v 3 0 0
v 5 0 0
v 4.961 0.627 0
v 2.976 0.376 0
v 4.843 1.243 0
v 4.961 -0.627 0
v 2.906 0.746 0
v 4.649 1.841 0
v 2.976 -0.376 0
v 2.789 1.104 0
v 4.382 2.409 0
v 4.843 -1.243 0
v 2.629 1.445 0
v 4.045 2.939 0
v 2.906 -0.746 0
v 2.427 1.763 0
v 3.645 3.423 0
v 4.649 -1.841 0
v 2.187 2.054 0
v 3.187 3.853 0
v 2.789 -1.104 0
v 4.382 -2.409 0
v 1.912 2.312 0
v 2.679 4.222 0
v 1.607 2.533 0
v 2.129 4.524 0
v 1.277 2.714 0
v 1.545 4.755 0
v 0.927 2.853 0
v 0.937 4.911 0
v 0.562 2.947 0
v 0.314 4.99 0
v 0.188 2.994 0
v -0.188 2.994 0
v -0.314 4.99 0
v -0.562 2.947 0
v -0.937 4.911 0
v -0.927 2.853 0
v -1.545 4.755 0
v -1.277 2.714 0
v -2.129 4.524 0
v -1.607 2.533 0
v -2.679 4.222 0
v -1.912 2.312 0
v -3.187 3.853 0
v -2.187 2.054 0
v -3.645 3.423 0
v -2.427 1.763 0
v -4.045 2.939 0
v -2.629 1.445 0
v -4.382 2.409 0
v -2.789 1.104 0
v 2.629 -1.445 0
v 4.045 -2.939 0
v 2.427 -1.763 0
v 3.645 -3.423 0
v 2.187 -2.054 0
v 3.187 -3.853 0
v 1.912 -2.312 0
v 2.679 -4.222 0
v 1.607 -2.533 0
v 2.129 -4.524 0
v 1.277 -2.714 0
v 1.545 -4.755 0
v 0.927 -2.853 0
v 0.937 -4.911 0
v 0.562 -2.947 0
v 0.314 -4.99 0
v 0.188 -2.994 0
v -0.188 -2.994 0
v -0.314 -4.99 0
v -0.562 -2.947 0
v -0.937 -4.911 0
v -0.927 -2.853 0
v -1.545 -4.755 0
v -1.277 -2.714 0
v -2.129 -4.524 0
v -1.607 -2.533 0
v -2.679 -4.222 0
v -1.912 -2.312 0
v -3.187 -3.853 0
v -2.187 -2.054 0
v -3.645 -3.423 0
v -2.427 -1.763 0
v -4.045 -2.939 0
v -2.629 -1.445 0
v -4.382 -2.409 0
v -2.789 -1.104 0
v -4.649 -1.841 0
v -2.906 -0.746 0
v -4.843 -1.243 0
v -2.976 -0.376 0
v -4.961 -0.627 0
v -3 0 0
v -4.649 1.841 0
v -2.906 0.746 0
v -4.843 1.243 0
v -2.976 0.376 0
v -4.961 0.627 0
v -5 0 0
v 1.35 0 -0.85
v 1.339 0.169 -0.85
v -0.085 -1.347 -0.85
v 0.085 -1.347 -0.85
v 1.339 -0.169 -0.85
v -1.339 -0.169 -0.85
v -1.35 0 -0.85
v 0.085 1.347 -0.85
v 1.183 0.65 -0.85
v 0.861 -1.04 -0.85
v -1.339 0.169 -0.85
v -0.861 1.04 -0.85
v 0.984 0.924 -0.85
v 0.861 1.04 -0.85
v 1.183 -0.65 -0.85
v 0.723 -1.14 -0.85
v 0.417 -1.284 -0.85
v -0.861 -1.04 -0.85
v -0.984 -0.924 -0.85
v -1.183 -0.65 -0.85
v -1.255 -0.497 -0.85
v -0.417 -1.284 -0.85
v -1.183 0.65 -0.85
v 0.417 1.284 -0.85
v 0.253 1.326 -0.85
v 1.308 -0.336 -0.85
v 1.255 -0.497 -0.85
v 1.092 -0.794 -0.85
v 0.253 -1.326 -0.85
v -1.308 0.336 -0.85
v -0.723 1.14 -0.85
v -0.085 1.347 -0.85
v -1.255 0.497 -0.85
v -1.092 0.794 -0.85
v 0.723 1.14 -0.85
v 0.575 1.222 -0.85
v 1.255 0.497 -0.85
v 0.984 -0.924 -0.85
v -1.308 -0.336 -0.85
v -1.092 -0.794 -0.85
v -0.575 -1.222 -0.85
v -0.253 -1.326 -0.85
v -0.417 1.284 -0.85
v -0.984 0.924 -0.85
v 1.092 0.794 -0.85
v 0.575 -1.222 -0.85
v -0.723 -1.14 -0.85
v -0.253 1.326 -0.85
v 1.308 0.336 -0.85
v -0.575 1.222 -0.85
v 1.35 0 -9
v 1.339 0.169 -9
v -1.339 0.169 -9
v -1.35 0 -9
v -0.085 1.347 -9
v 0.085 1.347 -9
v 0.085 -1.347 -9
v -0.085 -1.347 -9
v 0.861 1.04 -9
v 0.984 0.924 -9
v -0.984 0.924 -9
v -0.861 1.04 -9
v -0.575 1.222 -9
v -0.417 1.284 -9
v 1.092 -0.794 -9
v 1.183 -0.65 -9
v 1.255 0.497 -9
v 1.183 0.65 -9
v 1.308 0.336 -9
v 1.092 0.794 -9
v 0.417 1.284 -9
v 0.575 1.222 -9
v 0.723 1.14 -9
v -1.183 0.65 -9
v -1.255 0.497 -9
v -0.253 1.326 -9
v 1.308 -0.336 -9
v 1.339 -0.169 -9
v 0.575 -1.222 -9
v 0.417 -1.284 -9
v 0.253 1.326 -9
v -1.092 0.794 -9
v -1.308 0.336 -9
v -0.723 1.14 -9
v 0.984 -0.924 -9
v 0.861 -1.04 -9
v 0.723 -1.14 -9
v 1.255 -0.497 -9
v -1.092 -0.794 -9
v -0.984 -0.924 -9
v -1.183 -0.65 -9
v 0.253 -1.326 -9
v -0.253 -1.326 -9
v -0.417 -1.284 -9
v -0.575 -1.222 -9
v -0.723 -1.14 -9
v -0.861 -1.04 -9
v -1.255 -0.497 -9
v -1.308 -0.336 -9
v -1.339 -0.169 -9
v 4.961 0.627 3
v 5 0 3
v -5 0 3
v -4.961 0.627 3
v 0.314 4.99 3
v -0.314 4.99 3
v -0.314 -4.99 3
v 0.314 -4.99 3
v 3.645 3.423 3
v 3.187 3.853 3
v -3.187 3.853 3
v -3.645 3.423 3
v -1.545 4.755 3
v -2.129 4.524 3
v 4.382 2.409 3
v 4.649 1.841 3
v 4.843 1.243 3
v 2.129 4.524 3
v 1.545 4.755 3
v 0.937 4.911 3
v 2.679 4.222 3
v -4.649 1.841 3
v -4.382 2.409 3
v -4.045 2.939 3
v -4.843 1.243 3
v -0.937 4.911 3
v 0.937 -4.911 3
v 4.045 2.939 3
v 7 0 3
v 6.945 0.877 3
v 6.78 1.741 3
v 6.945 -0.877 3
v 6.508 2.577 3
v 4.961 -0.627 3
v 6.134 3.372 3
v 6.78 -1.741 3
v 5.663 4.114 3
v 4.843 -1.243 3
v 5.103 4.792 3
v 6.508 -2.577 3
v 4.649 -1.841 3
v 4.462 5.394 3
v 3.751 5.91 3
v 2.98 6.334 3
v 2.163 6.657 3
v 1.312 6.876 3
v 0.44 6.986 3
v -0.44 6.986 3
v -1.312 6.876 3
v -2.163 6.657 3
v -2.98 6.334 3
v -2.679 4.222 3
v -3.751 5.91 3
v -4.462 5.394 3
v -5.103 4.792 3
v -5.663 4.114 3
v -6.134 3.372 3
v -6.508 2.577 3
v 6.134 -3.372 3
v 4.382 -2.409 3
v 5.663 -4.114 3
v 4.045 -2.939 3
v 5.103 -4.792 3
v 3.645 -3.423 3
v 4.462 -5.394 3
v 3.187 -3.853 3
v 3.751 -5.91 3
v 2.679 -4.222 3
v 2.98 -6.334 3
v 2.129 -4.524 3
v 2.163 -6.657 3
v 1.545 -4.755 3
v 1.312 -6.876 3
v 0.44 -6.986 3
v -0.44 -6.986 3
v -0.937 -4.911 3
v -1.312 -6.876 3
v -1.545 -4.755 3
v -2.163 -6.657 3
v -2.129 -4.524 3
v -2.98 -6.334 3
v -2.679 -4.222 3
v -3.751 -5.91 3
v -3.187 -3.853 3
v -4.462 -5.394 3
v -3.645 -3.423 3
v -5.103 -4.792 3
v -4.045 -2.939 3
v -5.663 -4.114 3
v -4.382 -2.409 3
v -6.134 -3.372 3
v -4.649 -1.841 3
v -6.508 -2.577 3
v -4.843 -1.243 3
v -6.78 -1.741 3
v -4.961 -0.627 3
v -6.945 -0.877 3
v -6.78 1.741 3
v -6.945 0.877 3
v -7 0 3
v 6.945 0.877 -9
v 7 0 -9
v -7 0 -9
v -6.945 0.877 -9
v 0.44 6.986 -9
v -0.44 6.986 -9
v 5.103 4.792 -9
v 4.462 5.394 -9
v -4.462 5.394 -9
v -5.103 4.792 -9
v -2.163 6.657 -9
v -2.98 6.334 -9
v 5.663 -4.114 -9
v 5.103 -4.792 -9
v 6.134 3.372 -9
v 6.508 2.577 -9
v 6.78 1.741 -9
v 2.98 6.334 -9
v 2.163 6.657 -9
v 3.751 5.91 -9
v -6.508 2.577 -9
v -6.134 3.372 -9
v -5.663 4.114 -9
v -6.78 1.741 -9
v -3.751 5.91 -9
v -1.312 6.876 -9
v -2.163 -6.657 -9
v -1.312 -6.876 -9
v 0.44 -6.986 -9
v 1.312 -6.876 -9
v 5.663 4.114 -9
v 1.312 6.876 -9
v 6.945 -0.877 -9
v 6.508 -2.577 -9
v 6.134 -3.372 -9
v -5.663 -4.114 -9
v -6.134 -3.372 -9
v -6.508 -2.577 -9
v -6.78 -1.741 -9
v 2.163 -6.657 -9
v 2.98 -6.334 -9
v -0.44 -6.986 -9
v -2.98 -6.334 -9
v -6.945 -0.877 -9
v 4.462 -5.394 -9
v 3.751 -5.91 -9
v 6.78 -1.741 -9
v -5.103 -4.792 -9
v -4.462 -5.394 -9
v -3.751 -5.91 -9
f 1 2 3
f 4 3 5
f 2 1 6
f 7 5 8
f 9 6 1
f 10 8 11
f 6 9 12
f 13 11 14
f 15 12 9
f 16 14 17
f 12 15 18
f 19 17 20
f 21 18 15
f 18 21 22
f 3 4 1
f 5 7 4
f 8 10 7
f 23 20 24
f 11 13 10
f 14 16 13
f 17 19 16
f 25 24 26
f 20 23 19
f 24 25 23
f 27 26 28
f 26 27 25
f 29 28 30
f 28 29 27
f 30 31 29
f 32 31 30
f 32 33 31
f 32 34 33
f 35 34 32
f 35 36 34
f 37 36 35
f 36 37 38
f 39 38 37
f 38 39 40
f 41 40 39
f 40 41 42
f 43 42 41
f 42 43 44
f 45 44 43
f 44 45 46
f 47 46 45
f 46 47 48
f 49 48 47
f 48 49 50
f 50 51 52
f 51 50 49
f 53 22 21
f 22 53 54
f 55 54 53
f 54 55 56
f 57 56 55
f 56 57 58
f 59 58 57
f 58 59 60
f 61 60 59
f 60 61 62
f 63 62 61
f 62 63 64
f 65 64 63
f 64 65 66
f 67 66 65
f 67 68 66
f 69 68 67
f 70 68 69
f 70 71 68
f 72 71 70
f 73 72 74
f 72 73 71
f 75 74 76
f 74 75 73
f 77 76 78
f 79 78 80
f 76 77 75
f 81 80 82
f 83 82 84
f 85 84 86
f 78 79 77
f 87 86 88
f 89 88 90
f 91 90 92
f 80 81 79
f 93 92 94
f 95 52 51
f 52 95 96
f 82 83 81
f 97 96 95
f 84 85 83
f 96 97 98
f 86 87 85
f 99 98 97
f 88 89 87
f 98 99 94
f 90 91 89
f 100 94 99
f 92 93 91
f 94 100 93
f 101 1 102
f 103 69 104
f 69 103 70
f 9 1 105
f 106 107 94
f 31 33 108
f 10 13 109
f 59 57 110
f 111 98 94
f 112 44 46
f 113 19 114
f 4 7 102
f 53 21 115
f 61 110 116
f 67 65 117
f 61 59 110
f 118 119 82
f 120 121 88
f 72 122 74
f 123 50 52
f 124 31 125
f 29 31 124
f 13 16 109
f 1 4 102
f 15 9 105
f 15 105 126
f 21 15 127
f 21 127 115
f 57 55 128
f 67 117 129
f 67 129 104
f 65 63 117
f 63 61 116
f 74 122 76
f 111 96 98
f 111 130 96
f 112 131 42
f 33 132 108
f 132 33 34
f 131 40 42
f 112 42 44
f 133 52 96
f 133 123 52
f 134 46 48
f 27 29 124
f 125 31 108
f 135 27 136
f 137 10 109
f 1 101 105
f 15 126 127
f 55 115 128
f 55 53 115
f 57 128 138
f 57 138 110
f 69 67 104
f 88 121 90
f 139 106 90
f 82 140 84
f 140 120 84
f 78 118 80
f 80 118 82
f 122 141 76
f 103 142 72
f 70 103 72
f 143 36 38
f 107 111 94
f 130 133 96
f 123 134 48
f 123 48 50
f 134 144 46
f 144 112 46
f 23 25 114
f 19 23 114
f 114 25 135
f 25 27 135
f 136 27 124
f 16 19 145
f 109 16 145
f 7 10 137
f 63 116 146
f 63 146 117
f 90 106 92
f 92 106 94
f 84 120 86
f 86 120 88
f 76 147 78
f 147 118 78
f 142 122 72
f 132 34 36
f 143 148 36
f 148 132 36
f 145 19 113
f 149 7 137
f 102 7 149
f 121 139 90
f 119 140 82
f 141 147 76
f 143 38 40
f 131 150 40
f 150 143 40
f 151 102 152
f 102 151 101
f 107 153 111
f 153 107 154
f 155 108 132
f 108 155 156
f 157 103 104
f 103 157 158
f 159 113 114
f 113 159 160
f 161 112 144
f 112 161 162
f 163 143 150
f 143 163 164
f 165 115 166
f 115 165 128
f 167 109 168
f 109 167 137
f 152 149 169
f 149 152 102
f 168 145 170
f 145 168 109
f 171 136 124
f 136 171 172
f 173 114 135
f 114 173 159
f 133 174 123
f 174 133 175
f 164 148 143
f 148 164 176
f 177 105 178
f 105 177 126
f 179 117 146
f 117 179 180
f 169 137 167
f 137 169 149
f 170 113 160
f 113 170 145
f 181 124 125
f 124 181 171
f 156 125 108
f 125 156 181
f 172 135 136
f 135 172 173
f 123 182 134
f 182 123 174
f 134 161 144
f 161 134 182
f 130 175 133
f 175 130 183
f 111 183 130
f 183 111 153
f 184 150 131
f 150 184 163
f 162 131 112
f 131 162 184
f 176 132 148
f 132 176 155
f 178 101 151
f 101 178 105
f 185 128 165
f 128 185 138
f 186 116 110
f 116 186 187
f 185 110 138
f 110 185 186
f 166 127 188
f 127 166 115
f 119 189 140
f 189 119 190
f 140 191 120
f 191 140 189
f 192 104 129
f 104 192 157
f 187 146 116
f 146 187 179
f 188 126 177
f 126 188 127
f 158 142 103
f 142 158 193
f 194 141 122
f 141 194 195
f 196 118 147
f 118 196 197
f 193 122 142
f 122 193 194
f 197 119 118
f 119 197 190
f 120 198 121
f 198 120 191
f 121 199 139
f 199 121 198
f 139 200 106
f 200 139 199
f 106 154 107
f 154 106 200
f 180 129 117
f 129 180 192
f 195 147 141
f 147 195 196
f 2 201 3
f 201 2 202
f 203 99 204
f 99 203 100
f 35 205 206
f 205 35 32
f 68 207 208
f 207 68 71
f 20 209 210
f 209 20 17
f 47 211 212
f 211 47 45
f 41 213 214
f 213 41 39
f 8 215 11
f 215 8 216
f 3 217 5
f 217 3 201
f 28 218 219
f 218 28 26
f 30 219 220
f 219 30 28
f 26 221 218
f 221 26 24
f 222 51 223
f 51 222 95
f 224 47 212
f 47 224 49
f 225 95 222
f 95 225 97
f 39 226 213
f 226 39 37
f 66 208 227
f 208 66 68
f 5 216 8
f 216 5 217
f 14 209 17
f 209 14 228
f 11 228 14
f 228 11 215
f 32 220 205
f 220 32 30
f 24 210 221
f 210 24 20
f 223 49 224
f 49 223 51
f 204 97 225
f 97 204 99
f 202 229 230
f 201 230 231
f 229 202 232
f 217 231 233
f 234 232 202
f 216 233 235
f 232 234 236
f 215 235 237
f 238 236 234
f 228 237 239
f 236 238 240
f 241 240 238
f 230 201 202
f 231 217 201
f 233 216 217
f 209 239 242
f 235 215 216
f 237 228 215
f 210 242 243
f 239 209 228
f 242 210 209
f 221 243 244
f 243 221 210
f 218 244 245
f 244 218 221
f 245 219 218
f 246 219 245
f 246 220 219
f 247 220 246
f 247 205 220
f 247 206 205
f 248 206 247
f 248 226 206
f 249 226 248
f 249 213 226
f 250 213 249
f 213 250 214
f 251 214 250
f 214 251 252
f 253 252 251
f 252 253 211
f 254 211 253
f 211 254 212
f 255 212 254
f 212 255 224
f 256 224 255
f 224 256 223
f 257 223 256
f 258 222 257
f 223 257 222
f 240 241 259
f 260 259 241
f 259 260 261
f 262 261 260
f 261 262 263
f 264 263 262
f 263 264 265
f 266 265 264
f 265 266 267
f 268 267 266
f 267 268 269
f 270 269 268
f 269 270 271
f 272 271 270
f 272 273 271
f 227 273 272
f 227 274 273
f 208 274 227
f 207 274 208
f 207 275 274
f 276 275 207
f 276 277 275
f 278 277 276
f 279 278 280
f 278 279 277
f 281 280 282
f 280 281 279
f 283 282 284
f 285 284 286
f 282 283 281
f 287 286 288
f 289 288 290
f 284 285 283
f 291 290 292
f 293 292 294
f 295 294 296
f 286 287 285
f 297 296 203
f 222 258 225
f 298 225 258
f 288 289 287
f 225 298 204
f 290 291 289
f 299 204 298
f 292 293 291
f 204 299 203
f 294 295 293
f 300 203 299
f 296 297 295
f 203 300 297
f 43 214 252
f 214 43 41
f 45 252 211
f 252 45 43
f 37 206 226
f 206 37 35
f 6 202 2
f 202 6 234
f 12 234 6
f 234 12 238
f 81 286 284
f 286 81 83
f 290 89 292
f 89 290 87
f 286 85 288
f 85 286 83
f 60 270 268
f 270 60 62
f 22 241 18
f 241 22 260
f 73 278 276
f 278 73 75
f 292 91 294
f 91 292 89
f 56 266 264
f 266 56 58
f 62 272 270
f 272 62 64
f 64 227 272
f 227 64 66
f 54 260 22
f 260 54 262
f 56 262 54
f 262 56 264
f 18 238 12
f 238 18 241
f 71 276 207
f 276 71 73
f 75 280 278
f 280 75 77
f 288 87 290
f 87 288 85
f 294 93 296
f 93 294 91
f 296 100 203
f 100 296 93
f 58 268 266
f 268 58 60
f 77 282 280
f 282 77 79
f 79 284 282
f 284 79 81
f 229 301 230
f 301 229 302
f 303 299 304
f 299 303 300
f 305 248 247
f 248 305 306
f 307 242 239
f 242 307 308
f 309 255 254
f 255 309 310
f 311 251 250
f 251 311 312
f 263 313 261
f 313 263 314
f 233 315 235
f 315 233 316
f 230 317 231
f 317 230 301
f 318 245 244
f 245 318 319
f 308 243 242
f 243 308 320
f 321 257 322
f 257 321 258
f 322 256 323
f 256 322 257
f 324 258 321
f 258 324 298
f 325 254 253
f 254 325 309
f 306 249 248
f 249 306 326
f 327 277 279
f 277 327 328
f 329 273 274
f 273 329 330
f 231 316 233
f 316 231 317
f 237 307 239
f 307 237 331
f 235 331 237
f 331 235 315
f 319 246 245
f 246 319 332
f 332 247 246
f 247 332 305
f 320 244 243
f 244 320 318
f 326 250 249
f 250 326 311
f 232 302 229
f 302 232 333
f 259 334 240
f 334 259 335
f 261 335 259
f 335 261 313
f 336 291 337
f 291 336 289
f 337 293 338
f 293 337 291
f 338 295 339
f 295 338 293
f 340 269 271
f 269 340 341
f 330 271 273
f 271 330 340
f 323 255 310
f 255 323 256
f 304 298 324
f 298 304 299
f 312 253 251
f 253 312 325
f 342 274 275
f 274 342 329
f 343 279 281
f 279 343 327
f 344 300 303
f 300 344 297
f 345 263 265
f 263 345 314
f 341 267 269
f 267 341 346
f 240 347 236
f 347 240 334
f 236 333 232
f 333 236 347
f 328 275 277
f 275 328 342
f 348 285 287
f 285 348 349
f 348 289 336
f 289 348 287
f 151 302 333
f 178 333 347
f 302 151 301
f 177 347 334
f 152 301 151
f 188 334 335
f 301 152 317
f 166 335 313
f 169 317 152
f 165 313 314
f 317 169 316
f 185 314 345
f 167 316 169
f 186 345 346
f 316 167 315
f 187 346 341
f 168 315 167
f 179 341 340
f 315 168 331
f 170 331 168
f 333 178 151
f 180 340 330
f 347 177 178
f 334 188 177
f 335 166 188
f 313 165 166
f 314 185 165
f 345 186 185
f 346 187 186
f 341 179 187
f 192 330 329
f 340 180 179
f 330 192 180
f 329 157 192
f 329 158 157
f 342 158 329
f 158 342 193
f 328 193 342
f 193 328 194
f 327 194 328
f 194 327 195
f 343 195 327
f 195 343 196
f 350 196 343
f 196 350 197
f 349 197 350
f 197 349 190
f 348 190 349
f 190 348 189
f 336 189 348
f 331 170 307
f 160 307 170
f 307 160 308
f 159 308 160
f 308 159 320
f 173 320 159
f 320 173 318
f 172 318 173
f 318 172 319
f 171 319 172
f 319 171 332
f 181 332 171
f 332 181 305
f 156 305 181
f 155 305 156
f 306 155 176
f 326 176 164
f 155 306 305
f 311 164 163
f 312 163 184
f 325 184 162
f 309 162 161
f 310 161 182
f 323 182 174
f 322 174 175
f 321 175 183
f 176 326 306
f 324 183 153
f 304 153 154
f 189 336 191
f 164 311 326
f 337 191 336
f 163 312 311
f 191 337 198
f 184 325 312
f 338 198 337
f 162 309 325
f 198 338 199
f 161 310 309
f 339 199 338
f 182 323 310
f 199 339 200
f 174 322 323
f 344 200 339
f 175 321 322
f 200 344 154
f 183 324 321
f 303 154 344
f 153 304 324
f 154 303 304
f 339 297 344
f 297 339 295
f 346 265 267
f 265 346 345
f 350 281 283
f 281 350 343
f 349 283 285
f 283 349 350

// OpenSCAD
$fn = 50;

difference() {
	union() {
		translate(v = [0, 0, -9.0]) {
			cylinder(h = 12, r = 7.0);
		}
	}
	union() {
		translate(v = [0, 0, 0]) {
			rotate(a = [0, 0, 0]) {
				difference() {
					union() {
						translate(v = [0, 0, -12.0]) {
							cylinder(h = 12, r = 1.0);
						}
						translate(v = [0, 0, -0.85]) {
							cylinder(h = 0.85, r1 = 1.35, r2 = 3.0);
						}
						translate(v = [0, 0, -12.0]) {
							cylinder(h = 12, r = 1.35);
						}
						translate(v = [0, 0, -12.0]) {
							cylinder(h = 12, r = 1.0);
						}
					}
					union();
				}
			}
		}
		#cylinder(h = 3, r = 5.0);
	}
}
